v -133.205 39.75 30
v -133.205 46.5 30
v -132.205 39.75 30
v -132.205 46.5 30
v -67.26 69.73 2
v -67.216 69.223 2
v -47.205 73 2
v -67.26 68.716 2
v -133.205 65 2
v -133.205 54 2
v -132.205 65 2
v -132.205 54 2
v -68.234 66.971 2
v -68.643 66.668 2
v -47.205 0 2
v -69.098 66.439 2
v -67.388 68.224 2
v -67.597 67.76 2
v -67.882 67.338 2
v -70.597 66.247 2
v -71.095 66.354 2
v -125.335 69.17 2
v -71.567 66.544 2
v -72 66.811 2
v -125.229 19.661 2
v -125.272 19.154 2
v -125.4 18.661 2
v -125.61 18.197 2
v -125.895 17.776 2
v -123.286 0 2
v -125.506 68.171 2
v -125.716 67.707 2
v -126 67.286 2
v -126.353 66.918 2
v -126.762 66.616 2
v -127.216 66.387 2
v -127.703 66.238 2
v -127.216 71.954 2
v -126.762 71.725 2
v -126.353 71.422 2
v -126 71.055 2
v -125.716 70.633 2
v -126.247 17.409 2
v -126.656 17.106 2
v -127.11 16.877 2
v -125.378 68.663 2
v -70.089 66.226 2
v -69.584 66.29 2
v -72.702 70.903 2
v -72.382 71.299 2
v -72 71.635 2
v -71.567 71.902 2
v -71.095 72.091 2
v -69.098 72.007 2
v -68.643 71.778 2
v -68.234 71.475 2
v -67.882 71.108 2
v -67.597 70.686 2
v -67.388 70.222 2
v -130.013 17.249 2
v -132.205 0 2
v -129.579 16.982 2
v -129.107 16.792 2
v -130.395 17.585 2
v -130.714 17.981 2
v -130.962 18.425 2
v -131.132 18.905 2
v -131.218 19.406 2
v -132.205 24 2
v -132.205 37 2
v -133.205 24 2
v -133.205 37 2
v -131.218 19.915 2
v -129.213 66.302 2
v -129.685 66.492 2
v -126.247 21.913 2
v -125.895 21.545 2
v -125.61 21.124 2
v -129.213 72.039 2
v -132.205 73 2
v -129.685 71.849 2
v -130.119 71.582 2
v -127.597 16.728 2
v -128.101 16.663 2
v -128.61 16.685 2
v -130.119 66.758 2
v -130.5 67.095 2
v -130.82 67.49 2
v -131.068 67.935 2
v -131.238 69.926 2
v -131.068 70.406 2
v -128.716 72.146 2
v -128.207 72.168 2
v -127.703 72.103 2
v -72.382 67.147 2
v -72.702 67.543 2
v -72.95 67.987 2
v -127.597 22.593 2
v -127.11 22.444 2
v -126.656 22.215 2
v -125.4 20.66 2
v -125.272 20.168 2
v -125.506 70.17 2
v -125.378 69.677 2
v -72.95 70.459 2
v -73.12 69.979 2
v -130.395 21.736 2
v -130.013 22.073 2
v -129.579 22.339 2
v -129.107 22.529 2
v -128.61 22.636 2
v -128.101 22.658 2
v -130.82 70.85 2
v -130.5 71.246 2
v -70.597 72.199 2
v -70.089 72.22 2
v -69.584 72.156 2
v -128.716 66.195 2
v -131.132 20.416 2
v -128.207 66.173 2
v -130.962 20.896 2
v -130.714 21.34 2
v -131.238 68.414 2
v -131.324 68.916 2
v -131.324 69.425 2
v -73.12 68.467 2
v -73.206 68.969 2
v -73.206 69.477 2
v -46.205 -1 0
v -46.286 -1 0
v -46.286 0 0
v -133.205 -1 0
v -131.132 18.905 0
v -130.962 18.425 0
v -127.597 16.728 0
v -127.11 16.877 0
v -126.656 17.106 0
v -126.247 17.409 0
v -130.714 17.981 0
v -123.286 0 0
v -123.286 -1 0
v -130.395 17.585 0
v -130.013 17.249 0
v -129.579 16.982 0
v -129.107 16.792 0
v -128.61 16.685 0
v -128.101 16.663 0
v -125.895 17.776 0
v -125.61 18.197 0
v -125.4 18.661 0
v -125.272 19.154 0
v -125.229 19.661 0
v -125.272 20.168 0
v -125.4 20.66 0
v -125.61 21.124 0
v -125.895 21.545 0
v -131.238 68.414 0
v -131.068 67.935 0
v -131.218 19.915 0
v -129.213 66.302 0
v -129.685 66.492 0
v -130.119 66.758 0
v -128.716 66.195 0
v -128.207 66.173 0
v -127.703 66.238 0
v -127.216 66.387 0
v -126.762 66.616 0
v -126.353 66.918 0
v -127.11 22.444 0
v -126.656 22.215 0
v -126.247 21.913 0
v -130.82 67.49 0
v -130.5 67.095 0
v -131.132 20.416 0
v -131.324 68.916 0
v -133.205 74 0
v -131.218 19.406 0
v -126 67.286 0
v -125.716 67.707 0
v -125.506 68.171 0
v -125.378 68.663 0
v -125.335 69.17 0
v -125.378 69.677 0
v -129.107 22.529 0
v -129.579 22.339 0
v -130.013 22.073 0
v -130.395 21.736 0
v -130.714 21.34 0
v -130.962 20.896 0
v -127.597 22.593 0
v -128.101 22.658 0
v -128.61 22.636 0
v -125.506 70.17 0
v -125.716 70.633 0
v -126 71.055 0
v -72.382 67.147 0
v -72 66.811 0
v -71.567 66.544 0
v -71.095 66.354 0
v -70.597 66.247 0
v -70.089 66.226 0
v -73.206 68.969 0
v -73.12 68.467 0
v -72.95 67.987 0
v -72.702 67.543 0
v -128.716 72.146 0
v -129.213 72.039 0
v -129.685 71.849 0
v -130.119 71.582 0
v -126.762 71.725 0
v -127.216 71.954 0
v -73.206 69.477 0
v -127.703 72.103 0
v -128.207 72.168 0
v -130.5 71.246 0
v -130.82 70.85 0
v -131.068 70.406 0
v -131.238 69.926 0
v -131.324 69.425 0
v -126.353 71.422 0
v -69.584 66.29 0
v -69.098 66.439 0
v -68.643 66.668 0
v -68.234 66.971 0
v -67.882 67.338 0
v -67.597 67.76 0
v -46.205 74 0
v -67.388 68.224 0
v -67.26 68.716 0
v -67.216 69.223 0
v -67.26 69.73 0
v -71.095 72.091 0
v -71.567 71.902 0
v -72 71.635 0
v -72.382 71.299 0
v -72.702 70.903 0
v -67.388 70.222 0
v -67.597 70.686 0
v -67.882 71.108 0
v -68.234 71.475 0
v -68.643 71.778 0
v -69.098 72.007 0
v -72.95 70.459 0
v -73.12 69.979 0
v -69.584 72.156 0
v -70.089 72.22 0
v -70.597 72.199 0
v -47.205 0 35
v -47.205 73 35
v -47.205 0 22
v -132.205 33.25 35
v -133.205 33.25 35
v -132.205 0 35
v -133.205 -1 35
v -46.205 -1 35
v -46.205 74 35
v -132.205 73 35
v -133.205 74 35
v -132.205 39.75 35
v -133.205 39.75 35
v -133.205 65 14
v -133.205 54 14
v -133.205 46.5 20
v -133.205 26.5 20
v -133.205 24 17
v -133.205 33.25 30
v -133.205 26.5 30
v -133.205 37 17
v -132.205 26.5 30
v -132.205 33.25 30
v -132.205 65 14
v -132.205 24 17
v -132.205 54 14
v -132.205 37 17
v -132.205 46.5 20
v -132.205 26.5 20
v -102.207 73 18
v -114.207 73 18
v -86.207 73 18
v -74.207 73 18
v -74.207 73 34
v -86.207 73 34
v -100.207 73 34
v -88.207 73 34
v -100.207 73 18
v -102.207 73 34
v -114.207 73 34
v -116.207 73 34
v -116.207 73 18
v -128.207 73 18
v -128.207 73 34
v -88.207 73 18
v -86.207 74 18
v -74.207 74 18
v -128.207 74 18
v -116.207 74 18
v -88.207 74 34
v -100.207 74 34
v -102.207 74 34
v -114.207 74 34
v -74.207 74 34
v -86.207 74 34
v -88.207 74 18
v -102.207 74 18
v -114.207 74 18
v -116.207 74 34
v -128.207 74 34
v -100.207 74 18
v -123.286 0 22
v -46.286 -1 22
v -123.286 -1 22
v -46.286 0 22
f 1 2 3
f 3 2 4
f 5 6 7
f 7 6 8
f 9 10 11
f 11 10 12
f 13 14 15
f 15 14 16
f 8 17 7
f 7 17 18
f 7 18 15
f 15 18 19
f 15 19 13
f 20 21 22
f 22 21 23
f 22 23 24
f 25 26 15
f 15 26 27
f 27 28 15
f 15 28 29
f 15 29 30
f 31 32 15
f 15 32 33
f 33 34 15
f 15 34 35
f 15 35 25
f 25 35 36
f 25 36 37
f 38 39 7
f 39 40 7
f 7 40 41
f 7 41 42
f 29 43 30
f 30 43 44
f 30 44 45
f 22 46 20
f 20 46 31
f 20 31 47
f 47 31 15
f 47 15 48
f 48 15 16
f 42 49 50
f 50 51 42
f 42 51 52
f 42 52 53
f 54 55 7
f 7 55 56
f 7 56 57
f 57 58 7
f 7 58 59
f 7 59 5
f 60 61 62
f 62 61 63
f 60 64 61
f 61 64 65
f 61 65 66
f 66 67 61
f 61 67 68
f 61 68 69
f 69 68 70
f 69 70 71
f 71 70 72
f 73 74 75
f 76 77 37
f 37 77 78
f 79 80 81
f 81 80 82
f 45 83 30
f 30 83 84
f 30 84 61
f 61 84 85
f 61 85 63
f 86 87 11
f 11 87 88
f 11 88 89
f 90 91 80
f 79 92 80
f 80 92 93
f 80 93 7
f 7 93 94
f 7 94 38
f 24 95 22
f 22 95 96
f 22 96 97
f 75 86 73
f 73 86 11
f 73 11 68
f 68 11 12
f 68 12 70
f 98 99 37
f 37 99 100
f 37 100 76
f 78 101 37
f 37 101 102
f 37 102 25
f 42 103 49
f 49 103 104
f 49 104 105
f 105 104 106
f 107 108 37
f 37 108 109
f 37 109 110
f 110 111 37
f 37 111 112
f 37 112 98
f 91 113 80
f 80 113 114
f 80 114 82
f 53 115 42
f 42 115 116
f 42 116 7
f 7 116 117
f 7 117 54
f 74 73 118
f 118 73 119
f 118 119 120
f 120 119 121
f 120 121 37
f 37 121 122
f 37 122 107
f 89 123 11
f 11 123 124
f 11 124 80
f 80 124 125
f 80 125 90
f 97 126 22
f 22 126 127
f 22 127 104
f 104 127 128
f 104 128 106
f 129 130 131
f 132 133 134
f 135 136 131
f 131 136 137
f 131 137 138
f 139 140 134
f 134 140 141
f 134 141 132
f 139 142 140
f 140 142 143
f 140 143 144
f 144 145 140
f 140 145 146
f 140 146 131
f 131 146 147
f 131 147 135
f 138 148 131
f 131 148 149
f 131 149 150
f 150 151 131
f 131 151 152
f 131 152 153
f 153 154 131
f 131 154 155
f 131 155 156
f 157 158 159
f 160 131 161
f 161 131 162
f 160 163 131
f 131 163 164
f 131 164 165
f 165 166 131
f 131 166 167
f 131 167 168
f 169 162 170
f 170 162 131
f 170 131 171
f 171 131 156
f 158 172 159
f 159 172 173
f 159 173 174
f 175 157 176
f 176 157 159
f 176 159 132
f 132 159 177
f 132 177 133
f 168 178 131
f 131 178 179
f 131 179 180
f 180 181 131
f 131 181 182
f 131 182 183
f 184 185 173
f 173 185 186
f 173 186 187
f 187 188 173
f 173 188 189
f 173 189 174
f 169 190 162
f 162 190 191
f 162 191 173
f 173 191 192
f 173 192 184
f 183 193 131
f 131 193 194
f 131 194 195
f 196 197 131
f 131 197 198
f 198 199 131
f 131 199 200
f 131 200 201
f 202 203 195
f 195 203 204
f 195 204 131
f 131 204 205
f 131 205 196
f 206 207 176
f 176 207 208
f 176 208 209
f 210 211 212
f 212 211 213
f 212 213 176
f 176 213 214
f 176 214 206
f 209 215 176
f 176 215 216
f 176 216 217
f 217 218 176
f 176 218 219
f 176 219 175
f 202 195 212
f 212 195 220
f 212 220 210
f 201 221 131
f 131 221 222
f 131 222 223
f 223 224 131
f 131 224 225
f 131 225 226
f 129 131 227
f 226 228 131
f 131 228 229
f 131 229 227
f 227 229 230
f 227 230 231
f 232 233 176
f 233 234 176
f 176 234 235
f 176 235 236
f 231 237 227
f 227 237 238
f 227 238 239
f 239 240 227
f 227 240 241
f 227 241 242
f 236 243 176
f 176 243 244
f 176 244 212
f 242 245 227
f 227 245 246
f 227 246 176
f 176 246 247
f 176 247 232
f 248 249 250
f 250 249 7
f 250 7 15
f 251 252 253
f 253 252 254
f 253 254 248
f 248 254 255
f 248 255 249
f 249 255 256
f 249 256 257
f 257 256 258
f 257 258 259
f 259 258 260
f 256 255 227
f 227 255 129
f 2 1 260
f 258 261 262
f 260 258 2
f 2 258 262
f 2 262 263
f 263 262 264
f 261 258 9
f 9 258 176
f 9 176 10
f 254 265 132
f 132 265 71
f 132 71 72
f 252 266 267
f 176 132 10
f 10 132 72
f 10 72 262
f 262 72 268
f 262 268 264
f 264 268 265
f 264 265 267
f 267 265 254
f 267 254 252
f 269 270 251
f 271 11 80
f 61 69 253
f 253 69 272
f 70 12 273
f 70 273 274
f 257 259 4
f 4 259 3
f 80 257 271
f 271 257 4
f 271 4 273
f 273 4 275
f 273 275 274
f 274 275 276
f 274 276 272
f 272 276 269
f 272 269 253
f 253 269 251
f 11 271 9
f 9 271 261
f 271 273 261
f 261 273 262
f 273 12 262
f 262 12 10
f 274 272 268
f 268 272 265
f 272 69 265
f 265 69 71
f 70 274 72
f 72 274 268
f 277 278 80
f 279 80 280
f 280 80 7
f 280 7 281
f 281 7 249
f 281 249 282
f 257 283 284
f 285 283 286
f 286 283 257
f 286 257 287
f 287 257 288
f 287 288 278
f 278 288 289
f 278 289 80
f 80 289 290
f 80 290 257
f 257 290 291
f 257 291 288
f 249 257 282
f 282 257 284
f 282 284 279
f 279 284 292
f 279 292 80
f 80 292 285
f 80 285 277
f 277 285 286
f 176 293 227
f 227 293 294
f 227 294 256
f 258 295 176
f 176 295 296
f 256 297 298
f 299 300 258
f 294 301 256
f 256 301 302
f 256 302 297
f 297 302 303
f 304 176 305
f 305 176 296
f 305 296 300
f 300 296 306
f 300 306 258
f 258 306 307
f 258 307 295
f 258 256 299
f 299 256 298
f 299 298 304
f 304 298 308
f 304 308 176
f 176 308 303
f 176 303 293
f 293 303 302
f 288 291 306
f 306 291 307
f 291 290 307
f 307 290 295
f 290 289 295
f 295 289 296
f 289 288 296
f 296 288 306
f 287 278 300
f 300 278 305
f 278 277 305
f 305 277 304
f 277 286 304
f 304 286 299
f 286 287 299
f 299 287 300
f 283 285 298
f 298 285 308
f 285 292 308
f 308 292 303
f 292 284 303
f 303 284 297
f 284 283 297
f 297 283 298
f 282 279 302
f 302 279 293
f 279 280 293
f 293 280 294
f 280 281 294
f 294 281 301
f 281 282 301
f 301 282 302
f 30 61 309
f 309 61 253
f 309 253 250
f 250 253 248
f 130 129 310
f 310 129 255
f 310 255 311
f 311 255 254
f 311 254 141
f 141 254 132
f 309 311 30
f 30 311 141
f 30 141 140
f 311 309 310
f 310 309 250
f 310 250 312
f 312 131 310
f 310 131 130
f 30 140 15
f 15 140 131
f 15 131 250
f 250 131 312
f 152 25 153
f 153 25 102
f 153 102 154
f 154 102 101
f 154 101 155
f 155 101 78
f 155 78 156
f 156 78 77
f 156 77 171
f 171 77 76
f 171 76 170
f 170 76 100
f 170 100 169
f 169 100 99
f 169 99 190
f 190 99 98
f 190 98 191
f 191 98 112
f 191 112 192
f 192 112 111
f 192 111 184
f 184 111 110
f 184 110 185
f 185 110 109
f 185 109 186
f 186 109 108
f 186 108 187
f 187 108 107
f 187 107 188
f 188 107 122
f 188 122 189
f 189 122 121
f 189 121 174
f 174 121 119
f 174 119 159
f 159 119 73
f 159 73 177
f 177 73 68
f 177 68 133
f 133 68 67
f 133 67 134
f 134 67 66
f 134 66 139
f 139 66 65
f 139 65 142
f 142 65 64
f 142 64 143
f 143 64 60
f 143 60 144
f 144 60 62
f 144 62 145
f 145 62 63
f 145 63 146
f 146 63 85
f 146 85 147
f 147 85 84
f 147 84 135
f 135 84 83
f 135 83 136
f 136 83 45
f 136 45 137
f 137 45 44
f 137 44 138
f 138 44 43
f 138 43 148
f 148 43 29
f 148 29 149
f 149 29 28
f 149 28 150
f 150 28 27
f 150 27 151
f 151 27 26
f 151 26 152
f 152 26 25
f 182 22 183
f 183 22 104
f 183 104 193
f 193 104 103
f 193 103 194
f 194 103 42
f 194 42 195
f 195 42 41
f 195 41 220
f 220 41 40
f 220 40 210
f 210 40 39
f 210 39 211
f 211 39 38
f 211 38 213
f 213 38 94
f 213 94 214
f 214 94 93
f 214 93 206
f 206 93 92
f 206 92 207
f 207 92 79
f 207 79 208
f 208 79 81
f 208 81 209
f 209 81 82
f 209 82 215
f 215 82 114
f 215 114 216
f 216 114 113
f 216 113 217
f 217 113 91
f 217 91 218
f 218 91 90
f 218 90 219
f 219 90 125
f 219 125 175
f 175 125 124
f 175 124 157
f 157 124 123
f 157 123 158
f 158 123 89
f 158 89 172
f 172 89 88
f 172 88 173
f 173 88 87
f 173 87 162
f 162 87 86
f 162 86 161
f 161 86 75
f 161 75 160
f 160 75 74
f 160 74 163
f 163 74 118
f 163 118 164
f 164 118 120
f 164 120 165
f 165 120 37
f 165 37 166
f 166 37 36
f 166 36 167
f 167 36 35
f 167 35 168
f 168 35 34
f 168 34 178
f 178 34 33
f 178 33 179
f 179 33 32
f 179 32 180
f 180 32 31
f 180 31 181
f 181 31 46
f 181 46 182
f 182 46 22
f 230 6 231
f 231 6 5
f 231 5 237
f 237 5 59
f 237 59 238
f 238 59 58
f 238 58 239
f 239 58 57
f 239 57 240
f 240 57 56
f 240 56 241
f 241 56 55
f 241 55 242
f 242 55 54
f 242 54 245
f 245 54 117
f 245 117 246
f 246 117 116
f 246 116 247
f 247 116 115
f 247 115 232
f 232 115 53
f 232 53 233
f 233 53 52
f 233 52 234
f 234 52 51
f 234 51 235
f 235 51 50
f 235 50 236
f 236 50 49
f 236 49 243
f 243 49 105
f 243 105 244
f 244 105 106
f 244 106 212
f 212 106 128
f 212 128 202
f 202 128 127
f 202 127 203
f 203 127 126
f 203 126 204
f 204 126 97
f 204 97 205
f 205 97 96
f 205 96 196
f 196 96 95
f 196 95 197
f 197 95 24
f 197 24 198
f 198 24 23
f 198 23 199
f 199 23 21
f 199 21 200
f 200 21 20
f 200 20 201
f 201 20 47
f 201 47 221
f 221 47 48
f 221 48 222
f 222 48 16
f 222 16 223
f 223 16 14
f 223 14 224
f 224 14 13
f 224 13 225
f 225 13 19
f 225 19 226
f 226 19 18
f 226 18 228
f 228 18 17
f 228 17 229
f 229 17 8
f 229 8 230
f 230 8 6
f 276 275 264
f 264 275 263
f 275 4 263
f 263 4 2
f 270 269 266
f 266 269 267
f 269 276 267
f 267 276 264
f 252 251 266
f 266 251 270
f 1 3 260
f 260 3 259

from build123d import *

# Parameters (mm, degrees)
ESQUISSE1_W              = 85
ESQUISSE1_H              = 73
BOSS_EXTRU_2_DEPTH       = 2
ESQUISSE6_W              = 35
ESQUISSE6_H              = 73
BOSS_EXTRU_4_DEPTH       = 1
ESQUISSE8_W              = 35
ESQUISSE8_H              = 73
BOSS_EXTRU_6_DEPTH       = 1
ESQUISSE10_W             = 12
ESQUISSE10_H             = 11
ENL_V_MAT_EXTRU_1_DEPTH  = 1
ESQUISSE11_W             = 15
ESQUISSE11_H             = 13
ENL_V_MAT_EXTRU_2_DEPTH  = 1
ESQUISSE13_W             = 87
ESQUISSE13_H             = 35
BOSS_EXTRU_8_DEPTH       = 1
ESQUISSE14_W             = 12
ESQUISSE14_H             = 16
ENL_V_MAT_EXTRU_3_DEPTH  = 1
ESQUISSE18_W             = 12
ESQUISSE18_H             = 16
ENL_V_MAT_EXTRU_5_DEPTH  = 1
ESQUISSE20_W             = 12
ESQUISSE20_H             = 16
ENL_V_MAT_EXTRU_6_DEPTH  = 1
ESQUISSE21_W             = 12
ESQUISSE21_H             = 16
ENL_V_MAT_EXTRU_7_DEPTH  = 1
ESQUISSE25_W             = 87
ESQUISSE25_H             = 35
BOSS_EXTRU_11_DEPTH      = 1
ESQUISSE26_W             = 77
ESQUISSE26_H             = 22
ENL_V_MAT_EXTRU_13_DEPTH = 1
ESQUISSE23_R             = 3
ENL_V_MAT_EXTRU_14_DEPTH = 10
ESQUISSE22_R             = 3
ENL_V_MAT_EXTRU_15_DEPTH = 10
ESQUISSE24_R             = 3
ENL_V_MAT_EXTRU_18_DEPTH = 10
ESQUISSE27_W             = 10
ESQUISSE27_H             = 20
ENL_V_MAT_EXTRU_19_DEPTH = 1
ESQUISSE28_W             = 5
ESQUISSE28_H             = 6.5
ENL_V_MAT_EXTRU_20_DEPTH = 10


with BuildPart() as part:
    # Esquisse1 → Boss.-Extru.2 (new body)
    with BuildSketch(Plane.XY):
        with Locations((-89.704998798, 36.5)):
            Rectangle(ESQUISSE1_W, ESQUISSE1_H)
    extrude(amount=BOSS_EXTRU_2_DEPTH)

    # Esquisse6 → Boss.-Extru.4 (add)
    with BuildSketch(Plane(origin=(-47.204998798, 0, 0), x_dir=(0, 0, -1), z_dir=(1, 0, 0))):
        with Locations((-17.5, 36.5)):
            Rectangle(ESQUISSE6_W, ESQUISSE6_H)
    extrude(amount=BOSS_EXTRU_4_DEPTH)

    # Esquisse8 → Boss.-Extru.6 (add)
    with BuildSketch(Plane.ZY.offset(132.204998798)):
        with Locations((17.5, 36.5)):
            Rectangle(ESQUISSE8_W, ESQUISSE8_H)
    extrude(amount=BOSS_EXTRU_6_DEPTH)

    # Esquisse10 → Enlèv. mat.-Extru.1 (cut)
    with BuildSketch(Plane.ZY.offset(133.204998798)):
        with Locations((8, 59.5)):
            Rectangle(ESQUISSE10_W, ESQUISSE10_H)
    extrude(amount=-ENL_V_MAT_EXTRU_1_DEPTH, mode=Mode.SUBTRACT)

    # Esquisse11 → Enlèv. mat.-Extru.2 (cut)
    with BuildSketch(Plane.ZY.offset(133.204998798)):
        with Locations((9.5, 30.5)):
            Rectangle(ESQUISSE11_W, ESQUISSE11_H)
    extrude(amount=-ENL_V_MAT_EXTRU_2_DEPTH, mode=Mode.SUBTRACT)

    # Esquisse13 → Boss.-Extru.8 (add)
    with BuildSketch(Plane(origin=(0, 73, 0), x_dir=(1, 0, 0), z_dir=(0, 1, 0))):
        with Locations((-89.704998798, -17.5)):
            Rectangle(ESQUISSE13_W, ESQUISSE13_H)
    extrude(amount=BOSS_EXTRU_8_DEPTH)

    # Esquisse14 → Enlèv. mat.-Extru.3 (cut)
    with BuildSketch(Plane(origin=(0, 74, 0), x_dir=(1, 0, 0), z_dir=(0, 1, 0))):
        with Locations((-122.207040337, -26)):
            Rectangle(ESQUISSE14_W, ESQUISSE14_H)
    extrude(amount=-ENL_V_MAT_EXTRU_3_DEPTH, mode=Mode.SUBTRACT)

    # Esquisse18 → Enlèv. mat.-Extru.5 (cut)
    with BuildSketch(Plane(origin=(0, 74, 0), x_dir=(1, 0, 0), z_dir=(0, 1, 0))):
        with Locations((-108.207040337, -26)):
            Rectangle(ESQUISSE18_W, ESQUISSE18_H)
    extrude(amount=-ENL_V_MAT_EXTRU_5_DEPTH, mode=Mode.SUBTRACT)

    # Esquisse20 → Enlèv. mat.-Extru.6 (cut)
    with BuildSketch(Plane(origin=(0, 74, 0), x_dir=(1, 0, 0), z_dir=(0, 1, 0))):
        with Locations((-94.207040337, -26)):
            Rectangle(ESQUISSE20_W, ESQUISSE20_H)
    extrude(amount=-ENL_V_MAT_EXTRU_6_DEPTH, mode=Mode.SUBTRACT)

    # Esquisse21 → Enlèv. mat.-Extru.7 (cut)
    with BuildSketch(Plane(origin=(0, 74, 0), x_dir=(1, 0, 0), z_dir=(0, 1, 0))):
        with Locations((-80.207040337, -26)):
            Rectangle(ESQUISSE21_W, ESQUISSE21_H)
    extrude(amount=-ENL_V_MAT_EXTRU_7_DEPTH, mode=Mode.SUBTRACT)

    # Esquisse25 → Boss.-Extru.11 (add)
    with BuildSketch(Plane.XZ):
        with Locations((-89.704998798, 17.5)):
            Rectangle(ESQUISSE25_W, ESQUISSE25_H)
    extrude(amount=BOSS_EXTRU_11_DEPTH)

    # Esquisse26 → Enlèv. mat.-Extru.13 (cut)
    with BuildSketch(Plane.XZ.offset(1)):
        with Locations((-84.785991567, 11)):
            Rectangle(ESQUISSE26_W, ESQUISSE26_H)
    extrude(amount=-ENL_V_MAT_EXTRU_13_DEPTH, mode=Mode.SUBTRACT)

    # Esquisse23 → Enlèv. mat.-Extru.14 (cut)
    with BuildSketch(Plane.XY.offset(2)):
        with Locations((-128.228777758, 19.66052326)):
            Circle(ESQUISSE23_R)
    extrude(amount=-ENL_V_MAT_EXTRU_14_DEPTH, mode=Mode.SUBTRACT)

    # Esquisse22 → Enlèv. mat.-Extru.15 (cut)
    with BuildSketch(Plane.XY.offset(2)):
        with Locations((-128.334603856, 69.17039525)):
            Circle(ESQUISSE22_R)
    extrude(amount=-ENL_V_MAT_EXTRU_15_DEPTH, mode=Mode.SUBTRACT)

    # Esquisse24 → Enlèv. mat.-Extru.18 (cut)
    with BuildSketch(Plane.XY.offset(2)):
        with Locations((-70.21638406, 69.222983718)):
            Circle(ESQUISSE24_R)
    extrude(amount=-ENL_V_MAT_EXTRU_18_DEPTH, mode=Mode.SUBTRACT)

    # Esquisse27 → Enlèv. mat.-Extru.19 (cut)
    with BuildSketch(Plane.ZY.offset(133.204998798)):
        with Locations((25, 36.5)):
            Rectangle(ESQUISSE27_W, ESQUISSE27_H)
    extrude(amount=-ENL_V_MAT_EXTRU_19_DEPTH, mode=Mode.SUBTRACT)

    # Esquisse28 → Enlèv. mat.-Extru.20 (cut)
    with BuildSketch(Plane.ZY.offset(133.204998798)):
        with Locations((32.5, 36.5)):
            Rectangle(ESQUISSE28_W, ESQUISSE28_H)
    extrude(amount=-ENL_V_MAT_EXTRU_20_DEPTH, mode=Mode.SUBTRACT)


solid = part.part
